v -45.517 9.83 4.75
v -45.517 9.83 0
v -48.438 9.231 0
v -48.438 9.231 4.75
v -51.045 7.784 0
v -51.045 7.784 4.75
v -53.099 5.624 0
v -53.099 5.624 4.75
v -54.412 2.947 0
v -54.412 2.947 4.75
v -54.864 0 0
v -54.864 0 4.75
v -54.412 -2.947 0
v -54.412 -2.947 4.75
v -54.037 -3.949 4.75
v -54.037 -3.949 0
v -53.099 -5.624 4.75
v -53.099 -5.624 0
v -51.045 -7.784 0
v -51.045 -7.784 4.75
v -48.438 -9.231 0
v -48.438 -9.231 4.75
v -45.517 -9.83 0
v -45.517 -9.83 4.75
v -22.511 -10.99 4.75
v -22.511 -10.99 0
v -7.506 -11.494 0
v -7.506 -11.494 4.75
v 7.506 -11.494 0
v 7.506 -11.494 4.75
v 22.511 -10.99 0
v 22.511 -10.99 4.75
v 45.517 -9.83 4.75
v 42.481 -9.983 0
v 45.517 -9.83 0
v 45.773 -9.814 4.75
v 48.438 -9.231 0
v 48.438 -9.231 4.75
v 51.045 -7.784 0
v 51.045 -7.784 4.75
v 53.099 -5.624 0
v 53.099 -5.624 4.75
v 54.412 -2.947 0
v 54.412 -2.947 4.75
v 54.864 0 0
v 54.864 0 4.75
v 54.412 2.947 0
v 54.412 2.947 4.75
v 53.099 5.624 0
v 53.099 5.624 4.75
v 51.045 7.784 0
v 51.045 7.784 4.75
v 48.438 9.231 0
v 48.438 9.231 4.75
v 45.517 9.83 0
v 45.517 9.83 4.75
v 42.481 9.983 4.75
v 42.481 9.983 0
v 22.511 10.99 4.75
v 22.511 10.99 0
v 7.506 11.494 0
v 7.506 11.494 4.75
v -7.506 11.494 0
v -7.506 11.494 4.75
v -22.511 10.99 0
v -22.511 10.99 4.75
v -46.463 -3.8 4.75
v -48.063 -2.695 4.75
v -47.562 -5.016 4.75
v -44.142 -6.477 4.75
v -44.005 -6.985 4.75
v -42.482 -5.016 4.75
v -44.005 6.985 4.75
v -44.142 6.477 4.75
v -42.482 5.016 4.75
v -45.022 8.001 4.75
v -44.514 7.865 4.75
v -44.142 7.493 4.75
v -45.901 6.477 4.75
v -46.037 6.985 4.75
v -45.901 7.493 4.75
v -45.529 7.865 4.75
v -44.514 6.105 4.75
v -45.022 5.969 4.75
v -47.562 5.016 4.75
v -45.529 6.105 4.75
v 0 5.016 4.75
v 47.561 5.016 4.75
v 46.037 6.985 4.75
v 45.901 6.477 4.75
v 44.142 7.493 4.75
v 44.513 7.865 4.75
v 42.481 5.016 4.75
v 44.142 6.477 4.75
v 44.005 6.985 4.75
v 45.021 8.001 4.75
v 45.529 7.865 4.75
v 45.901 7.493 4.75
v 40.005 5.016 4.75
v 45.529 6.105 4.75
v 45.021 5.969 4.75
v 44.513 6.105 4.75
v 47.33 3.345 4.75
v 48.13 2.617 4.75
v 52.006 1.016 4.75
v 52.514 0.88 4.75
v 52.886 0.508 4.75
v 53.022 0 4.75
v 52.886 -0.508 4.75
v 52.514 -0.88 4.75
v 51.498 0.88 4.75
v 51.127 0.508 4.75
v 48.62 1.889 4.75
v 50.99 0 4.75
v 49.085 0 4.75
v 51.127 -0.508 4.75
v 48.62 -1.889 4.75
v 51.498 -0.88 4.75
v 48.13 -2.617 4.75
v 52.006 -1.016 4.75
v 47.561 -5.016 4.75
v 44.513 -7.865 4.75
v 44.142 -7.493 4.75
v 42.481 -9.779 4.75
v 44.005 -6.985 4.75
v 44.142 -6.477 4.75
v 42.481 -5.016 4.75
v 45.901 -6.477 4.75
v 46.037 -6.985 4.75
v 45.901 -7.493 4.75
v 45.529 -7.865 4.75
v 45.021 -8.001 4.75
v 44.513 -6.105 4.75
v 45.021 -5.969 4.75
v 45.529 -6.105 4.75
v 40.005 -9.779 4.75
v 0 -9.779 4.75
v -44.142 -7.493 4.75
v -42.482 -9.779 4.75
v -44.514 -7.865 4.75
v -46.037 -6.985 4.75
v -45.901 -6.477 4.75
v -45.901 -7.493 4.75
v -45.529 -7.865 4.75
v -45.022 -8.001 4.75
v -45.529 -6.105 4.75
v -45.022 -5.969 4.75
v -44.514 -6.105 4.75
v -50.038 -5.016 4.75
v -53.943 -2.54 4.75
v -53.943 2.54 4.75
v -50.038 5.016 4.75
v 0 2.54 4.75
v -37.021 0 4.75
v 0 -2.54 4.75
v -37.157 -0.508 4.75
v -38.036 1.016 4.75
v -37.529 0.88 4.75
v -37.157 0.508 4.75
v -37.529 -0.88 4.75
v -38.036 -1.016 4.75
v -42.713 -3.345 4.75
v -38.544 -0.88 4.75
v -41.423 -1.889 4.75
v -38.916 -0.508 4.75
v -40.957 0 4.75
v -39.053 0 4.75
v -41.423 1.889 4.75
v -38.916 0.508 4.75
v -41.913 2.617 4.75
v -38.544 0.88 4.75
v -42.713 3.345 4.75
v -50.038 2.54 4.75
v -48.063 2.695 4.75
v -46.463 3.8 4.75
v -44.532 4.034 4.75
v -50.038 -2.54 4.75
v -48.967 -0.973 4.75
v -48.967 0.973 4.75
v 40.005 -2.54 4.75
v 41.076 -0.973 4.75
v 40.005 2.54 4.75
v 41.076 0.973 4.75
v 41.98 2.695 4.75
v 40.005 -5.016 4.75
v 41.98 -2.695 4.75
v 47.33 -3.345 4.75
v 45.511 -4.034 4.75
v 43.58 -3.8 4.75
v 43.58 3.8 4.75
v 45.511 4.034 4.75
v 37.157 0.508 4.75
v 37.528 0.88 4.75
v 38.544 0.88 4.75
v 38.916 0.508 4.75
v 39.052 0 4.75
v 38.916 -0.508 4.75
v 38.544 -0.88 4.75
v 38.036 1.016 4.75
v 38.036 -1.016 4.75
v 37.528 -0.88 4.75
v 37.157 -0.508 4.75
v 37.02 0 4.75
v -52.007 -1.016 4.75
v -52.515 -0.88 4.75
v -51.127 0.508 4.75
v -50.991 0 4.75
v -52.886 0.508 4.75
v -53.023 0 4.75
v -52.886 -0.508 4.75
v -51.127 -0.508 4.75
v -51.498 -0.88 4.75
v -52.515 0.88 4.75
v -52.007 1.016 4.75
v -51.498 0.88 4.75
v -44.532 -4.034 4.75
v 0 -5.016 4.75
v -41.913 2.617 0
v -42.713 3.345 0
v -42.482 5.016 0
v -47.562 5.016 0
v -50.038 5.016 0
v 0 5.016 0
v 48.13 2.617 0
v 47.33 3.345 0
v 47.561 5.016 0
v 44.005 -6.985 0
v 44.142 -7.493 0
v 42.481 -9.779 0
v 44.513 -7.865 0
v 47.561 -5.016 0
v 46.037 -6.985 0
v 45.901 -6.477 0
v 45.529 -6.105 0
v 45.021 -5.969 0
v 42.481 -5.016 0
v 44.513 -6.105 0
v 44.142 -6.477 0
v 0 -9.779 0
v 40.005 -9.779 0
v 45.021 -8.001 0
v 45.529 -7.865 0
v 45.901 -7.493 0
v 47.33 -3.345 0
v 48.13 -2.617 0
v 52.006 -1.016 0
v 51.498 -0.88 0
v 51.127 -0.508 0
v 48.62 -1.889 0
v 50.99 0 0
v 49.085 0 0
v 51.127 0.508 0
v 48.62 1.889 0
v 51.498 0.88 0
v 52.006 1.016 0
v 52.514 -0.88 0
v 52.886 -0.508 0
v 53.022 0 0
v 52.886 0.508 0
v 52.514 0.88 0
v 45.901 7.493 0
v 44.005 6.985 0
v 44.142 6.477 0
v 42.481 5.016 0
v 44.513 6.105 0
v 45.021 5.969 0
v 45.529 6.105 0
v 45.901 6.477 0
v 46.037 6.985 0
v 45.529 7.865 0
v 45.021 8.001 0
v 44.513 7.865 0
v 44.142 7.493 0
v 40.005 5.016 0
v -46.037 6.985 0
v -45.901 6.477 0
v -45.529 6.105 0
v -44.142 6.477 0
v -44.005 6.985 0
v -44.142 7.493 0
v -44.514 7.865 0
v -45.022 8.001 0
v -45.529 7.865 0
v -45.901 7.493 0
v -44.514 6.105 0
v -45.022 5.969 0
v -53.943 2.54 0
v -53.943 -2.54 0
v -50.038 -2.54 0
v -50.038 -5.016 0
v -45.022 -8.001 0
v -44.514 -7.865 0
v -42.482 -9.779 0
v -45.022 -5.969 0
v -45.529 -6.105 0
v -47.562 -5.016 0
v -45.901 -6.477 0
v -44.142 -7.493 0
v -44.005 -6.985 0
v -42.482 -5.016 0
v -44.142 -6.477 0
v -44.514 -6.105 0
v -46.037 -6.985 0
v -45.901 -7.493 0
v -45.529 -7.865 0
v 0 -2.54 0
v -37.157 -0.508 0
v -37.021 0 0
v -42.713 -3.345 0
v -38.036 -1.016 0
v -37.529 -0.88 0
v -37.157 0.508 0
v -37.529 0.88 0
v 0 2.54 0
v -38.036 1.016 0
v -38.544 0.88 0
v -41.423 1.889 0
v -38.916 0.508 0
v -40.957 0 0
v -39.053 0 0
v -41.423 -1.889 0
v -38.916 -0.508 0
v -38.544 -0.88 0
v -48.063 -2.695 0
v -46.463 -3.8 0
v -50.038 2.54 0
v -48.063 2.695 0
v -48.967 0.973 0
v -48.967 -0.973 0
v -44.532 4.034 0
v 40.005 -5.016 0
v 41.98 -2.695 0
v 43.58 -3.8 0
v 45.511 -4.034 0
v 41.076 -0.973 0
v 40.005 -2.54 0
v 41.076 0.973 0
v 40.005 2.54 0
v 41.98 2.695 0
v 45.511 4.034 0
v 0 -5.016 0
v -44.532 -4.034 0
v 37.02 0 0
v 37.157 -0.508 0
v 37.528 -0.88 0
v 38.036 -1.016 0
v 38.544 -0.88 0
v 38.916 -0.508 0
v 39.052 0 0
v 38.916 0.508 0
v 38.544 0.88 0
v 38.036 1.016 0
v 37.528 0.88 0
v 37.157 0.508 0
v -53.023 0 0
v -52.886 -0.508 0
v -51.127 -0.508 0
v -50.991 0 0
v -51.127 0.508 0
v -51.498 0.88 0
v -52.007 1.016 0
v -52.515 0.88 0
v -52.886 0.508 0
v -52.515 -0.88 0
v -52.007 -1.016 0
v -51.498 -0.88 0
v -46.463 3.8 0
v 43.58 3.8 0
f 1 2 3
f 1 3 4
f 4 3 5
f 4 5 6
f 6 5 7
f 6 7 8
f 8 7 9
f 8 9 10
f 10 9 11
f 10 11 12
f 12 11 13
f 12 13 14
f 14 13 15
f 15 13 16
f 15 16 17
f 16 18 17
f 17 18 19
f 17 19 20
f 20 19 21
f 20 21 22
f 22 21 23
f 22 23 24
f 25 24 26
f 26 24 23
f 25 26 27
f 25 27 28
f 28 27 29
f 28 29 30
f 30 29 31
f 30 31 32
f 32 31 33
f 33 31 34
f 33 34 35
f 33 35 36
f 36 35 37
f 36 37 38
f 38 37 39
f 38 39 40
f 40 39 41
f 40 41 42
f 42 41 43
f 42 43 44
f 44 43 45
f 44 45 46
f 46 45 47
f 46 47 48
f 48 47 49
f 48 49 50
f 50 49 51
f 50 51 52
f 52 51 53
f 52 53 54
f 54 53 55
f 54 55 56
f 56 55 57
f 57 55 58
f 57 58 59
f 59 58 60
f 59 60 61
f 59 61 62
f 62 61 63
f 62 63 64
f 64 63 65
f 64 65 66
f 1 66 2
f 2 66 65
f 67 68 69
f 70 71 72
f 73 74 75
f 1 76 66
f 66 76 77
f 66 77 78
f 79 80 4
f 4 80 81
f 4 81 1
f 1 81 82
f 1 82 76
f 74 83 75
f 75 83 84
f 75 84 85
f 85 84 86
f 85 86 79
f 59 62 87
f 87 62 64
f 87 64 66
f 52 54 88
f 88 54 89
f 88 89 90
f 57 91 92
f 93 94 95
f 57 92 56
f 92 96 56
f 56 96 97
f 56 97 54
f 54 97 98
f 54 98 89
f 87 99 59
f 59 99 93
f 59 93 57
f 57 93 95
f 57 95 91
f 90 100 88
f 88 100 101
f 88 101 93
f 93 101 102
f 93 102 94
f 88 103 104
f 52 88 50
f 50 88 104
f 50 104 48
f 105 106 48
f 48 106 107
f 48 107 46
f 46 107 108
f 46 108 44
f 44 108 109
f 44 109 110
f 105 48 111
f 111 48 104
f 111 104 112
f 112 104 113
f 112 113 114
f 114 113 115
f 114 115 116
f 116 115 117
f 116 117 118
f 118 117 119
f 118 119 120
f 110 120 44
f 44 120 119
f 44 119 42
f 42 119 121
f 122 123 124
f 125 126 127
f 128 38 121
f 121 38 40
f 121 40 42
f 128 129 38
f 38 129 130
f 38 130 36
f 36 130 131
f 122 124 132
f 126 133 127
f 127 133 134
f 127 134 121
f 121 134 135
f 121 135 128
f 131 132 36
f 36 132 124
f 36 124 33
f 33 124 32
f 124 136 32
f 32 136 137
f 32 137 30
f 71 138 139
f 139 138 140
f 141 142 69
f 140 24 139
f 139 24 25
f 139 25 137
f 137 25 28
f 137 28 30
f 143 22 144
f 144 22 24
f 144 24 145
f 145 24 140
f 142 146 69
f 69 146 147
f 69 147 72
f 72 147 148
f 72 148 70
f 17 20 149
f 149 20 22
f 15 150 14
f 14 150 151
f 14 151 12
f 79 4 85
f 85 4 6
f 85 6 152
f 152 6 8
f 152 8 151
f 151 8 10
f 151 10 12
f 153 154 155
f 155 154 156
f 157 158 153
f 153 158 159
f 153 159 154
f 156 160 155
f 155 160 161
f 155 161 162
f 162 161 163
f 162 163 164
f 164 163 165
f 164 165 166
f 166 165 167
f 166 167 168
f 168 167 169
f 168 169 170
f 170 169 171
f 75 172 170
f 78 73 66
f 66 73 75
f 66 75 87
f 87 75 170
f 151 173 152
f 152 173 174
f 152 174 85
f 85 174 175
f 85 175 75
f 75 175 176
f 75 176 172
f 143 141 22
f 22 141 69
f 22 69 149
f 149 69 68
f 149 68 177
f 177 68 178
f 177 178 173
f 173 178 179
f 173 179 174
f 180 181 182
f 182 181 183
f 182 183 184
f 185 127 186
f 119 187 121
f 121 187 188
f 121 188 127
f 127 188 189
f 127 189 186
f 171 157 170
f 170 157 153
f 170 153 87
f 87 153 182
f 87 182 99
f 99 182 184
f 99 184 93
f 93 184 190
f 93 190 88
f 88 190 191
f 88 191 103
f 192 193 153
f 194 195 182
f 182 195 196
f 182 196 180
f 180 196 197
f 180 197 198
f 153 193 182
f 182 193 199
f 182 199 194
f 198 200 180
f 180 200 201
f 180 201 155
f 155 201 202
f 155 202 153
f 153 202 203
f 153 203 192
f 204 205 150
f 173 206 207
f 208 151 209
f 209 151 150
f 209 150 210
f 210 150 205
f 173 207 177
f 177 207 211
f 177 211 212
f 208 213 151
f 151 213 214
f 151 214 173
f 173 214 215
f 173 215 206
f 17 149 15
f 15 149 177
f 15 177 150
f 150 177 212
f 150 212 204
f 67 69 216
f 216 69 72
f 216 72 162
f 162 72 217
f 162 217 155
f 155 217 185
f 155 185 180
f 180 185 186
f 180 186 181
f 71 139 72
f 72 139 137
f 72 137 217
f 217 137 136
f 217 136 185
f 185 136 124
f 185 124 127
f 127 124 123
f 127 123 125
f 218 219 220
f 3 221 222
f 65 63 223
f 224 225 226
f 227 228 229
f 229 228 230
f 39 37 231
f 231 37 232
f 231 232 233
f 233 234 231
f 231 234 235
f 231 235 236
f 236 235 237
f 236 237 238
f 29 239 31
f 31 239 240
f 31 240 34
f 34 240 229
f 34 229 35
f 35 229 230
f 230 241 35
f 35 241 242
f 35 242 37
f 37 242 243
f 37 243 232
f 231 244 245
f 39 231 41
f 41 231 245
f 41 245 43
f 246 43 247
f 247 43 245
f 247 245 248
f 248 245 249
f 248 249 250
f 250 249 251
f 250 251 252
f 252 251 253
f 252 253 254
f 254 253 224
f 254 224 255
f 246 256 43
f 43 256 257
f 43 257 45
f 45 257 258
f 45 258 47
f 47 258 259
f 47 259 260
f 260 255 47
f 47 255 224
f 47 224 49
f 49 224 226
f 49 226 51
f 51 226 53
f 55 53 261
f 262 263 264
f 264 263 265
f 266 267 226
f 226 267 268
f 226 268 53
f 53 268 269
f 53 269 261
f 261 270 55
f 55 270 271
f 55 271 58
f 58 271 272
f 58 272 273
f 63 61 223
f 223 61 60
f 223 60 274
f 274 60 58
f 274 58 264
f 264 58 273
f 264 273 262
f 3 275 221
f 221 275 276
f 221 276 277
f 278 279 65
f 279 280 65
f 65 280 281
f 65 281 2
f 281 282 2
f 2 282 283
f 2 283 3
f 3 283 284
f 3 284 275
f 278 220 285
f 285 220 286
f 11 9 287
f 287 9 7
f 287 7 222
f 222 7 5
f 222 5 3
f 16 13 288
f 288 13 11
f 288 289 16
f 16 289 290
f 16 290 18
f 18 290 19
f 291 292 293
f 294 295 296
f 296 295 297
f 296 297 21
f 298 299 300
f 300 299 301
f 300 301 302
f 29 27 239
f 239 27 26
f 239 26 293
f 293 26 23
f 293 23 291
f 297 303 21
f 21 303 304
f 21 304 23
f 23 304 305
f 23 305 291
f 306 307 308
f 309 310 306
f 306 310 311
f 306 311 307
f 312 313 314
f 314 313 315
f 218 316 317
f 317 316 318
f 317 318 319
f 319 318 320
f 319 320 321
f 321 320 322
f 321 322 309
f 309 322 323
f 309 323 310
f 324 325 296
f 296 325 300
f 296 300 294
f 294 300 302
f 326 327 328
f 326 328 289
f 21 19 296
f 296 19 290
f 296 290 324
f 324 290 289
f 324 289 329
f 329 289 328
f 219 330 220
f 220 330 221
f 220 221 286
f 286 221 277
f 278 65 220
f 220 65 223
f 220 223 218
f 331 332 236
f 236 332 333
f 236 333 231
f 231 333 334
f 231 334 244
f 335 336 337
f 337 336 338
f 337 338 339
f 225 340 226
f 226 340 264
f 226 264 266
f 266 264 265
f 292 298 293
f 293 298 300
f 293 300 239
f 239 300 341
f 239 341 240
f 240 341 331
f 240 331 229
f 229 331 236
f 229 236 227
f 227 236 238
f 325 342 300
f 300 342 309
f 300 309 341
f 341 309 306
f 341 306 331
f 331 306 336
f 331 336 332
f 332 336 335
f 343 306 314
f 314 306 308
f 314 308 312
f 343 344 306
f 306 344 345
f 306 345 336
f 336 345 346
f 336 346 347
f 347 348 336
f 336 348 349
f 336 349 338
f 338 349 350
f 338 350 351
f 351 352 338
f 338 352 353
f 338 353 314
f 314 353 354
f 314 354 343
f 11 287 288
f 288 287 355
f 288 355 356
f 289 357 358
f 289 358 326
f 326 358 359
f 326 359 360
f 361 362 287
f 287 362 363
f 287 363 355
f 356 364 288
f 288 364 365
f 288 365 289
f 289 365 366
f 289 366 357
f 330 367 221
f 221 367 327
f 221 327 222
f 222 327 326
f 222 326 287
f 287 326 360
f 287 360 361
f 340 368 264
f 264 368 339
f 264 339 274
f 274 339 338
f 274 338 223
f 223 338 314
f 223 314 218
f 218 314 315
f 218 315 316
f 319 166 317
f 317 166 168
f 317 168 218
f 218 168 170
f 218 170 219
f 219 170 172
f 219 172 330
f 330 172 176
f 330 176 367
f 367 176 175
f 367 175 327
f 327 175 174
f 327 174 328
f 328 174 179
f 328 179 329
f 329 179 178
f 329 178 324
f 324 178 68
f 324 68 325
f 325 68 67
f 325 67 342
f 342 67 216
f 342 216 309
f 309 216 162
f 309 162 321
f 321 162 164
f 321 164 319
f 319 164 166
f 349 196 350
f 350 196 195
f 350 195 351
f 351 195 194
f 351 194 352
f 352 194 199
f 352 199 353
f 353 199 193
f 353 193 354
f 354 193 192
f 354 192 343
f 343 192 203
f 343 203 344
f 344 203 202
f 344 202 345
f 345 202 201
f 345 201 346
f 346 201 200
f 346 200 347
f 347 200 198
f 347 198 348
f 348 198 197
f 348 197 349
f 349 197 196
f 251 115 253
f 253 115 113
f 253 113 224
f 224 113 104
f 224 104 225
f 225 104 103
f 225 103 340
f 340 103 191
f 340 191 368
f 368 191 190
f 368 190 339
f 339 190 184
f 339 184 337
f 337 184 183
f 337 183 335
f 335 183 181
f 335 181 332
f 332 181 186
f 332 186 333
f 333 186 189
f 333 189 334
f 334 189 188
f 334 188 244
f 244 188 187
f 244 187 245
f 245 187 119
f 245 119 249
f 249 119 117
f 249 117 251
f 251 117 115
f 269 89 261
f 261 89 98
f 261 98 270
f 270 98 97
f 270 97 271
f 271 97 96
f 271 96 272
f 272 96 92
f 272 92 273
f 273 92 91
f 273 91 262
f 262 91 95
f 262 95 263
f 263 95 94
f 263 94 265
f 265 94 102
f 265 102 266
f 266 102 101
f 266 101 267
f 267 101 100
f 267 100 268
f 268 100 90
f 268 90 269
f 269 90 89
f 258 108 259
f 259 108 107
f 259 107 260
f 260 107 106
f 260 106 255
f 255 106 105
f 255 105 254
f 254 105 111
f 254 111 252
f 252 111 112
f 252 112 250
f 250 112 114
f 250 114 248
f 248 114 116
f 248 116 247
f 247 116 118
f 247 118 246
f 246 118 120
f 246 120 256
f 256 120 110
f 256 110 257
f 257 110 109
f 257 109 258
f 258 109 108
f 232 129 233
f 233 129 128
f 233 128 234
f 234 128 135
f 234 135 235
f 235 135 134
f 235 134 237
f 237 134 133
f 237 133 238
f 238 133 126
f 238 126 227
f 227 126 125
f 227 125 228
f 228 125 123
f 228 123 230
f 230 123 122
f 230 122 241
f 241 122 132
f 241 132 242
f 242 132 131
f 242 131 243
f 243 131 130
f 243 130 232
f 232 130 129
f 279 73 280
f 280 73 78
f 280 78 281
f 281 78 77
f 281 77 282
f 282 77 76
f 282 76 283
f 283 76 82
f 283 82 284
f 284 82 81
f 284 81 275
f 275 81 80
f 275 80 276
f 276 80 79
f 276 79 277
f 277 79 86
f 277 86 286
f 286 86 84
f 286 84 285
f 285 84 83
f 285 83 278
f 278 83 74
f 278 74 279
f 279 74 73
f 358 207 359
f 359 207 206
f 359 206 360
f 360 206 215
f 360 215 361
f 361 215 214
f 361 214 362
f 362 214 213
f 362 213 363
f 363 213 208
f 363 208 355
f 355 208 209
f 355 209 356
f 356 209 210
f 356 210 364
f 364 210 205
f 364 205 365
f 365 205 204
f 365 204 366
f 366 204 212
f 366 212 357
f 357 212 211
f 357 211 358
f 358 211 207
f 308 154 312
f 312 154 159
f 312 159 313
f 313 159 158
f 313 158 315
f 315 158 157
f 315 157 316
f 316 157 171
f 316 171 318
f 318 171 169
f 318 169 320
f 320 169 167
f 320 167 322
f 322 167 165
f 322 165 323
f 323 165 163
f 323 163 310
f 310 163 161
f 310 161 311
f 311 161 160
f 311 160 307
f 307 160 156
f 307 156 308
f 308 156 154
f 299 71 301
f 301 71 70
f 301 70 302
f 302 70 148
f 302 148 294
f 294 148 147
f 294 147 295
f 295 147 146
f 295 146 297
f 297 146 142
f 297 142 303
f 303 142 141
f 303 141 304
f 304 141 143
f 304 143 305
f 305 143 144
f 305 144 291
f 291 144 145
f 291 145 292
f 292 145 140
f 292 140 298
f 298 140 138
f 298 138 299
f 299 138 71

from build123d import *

# Parameters (mm, degrees)
BOSS_EXTRUDE1_DEPTH     = 4.7498
CUT_EXTRUDE4_DEPTH      = 57.268848798
CUT_EXTRUDE4_DEPTH_BACK = 57.268848798
SKETCH1_4_R             = 4.064
SKETCH1_4_R_2           = 1.016


with BuildPart() as part:
    # Sketch1 → Boss-Extrude1 (new body)
    with BuildSketch(Plane.XY):
        with BuildLine():
            Line((-45.517091875, 9.830015002), (-22.51075, 10.989907038))
            ThreePointArc((-22.51075, 10.989907038), (0, 11.557), (22.51075, 10.989907038))
            Line((22.51075, 10.989907038), (45.517091875, 9.830015002))
            ThreePointArc((45.517091875, 9.830015002), (54.864, 0), (45.517091875, -9.830015002))
            Line((45.517091875, -9.830015002), (22.51075, -10.989907038))
            ThreePointArc((22.51075, -10.989907038), (0, -11.557), (-22.51075, -10.989907038))
            Line((-22.51075, -10.989907038), (-45.517091875, -9.830015002))
            ThreePointArc((-45.517091875, -9.830015002), (-54.864, 0), (-45.517091875, 9.830015002))
        make_face()
    extrude(amount=BOSS_EXTRUDE1_DEPTH)

    # Sketch1<4> → Cut-Extrude4 (cut, two sides: drawn at the far end of the back side and taken through both)
    with BuildSketch(Plane.XY.offset(-CUT_EXTRUDE4_DEPTH_BACK)):
        with Locations((-45.0215, 0)):
            Circle(SKETCH1_4_R)
        with Locations((-45.0215, 6.985)):
            Circle(SKETCH1_4_R_2)
        with Locations((-52.0065, 0)):
            Circle(SKETCH1_4_R_2)
        with Locations((-38.0365, 0)):
            Circle(SKETCH1_4_R_2)
        with Locations((-45.0215, -6.985)):
            Circle(SKETCH1_4_R_2)
        with Locations((45.0215, 0)):
            Circle(SKETCH1_4_R)
        with Locations((45.0215, 6.985)):
            Circle(SKETCH1_4_R_2)
        with Locations((52.0065, 0)):
            Circle(SKETCH1_4_R_2)
        with Locations((45.0215, -6.985)):
            Circle(SKETCH1_4_R_2)
        with Locations((38.0365, 0)):
            Circle(SKETCH1_4_R_2)
    extrude(amount=CUT_EXTRUDE4_DEPTH + CUT_EXTRUDE4_DEPTH_BACK, mode=Mode.SUBTRACT)


solid = part.part
